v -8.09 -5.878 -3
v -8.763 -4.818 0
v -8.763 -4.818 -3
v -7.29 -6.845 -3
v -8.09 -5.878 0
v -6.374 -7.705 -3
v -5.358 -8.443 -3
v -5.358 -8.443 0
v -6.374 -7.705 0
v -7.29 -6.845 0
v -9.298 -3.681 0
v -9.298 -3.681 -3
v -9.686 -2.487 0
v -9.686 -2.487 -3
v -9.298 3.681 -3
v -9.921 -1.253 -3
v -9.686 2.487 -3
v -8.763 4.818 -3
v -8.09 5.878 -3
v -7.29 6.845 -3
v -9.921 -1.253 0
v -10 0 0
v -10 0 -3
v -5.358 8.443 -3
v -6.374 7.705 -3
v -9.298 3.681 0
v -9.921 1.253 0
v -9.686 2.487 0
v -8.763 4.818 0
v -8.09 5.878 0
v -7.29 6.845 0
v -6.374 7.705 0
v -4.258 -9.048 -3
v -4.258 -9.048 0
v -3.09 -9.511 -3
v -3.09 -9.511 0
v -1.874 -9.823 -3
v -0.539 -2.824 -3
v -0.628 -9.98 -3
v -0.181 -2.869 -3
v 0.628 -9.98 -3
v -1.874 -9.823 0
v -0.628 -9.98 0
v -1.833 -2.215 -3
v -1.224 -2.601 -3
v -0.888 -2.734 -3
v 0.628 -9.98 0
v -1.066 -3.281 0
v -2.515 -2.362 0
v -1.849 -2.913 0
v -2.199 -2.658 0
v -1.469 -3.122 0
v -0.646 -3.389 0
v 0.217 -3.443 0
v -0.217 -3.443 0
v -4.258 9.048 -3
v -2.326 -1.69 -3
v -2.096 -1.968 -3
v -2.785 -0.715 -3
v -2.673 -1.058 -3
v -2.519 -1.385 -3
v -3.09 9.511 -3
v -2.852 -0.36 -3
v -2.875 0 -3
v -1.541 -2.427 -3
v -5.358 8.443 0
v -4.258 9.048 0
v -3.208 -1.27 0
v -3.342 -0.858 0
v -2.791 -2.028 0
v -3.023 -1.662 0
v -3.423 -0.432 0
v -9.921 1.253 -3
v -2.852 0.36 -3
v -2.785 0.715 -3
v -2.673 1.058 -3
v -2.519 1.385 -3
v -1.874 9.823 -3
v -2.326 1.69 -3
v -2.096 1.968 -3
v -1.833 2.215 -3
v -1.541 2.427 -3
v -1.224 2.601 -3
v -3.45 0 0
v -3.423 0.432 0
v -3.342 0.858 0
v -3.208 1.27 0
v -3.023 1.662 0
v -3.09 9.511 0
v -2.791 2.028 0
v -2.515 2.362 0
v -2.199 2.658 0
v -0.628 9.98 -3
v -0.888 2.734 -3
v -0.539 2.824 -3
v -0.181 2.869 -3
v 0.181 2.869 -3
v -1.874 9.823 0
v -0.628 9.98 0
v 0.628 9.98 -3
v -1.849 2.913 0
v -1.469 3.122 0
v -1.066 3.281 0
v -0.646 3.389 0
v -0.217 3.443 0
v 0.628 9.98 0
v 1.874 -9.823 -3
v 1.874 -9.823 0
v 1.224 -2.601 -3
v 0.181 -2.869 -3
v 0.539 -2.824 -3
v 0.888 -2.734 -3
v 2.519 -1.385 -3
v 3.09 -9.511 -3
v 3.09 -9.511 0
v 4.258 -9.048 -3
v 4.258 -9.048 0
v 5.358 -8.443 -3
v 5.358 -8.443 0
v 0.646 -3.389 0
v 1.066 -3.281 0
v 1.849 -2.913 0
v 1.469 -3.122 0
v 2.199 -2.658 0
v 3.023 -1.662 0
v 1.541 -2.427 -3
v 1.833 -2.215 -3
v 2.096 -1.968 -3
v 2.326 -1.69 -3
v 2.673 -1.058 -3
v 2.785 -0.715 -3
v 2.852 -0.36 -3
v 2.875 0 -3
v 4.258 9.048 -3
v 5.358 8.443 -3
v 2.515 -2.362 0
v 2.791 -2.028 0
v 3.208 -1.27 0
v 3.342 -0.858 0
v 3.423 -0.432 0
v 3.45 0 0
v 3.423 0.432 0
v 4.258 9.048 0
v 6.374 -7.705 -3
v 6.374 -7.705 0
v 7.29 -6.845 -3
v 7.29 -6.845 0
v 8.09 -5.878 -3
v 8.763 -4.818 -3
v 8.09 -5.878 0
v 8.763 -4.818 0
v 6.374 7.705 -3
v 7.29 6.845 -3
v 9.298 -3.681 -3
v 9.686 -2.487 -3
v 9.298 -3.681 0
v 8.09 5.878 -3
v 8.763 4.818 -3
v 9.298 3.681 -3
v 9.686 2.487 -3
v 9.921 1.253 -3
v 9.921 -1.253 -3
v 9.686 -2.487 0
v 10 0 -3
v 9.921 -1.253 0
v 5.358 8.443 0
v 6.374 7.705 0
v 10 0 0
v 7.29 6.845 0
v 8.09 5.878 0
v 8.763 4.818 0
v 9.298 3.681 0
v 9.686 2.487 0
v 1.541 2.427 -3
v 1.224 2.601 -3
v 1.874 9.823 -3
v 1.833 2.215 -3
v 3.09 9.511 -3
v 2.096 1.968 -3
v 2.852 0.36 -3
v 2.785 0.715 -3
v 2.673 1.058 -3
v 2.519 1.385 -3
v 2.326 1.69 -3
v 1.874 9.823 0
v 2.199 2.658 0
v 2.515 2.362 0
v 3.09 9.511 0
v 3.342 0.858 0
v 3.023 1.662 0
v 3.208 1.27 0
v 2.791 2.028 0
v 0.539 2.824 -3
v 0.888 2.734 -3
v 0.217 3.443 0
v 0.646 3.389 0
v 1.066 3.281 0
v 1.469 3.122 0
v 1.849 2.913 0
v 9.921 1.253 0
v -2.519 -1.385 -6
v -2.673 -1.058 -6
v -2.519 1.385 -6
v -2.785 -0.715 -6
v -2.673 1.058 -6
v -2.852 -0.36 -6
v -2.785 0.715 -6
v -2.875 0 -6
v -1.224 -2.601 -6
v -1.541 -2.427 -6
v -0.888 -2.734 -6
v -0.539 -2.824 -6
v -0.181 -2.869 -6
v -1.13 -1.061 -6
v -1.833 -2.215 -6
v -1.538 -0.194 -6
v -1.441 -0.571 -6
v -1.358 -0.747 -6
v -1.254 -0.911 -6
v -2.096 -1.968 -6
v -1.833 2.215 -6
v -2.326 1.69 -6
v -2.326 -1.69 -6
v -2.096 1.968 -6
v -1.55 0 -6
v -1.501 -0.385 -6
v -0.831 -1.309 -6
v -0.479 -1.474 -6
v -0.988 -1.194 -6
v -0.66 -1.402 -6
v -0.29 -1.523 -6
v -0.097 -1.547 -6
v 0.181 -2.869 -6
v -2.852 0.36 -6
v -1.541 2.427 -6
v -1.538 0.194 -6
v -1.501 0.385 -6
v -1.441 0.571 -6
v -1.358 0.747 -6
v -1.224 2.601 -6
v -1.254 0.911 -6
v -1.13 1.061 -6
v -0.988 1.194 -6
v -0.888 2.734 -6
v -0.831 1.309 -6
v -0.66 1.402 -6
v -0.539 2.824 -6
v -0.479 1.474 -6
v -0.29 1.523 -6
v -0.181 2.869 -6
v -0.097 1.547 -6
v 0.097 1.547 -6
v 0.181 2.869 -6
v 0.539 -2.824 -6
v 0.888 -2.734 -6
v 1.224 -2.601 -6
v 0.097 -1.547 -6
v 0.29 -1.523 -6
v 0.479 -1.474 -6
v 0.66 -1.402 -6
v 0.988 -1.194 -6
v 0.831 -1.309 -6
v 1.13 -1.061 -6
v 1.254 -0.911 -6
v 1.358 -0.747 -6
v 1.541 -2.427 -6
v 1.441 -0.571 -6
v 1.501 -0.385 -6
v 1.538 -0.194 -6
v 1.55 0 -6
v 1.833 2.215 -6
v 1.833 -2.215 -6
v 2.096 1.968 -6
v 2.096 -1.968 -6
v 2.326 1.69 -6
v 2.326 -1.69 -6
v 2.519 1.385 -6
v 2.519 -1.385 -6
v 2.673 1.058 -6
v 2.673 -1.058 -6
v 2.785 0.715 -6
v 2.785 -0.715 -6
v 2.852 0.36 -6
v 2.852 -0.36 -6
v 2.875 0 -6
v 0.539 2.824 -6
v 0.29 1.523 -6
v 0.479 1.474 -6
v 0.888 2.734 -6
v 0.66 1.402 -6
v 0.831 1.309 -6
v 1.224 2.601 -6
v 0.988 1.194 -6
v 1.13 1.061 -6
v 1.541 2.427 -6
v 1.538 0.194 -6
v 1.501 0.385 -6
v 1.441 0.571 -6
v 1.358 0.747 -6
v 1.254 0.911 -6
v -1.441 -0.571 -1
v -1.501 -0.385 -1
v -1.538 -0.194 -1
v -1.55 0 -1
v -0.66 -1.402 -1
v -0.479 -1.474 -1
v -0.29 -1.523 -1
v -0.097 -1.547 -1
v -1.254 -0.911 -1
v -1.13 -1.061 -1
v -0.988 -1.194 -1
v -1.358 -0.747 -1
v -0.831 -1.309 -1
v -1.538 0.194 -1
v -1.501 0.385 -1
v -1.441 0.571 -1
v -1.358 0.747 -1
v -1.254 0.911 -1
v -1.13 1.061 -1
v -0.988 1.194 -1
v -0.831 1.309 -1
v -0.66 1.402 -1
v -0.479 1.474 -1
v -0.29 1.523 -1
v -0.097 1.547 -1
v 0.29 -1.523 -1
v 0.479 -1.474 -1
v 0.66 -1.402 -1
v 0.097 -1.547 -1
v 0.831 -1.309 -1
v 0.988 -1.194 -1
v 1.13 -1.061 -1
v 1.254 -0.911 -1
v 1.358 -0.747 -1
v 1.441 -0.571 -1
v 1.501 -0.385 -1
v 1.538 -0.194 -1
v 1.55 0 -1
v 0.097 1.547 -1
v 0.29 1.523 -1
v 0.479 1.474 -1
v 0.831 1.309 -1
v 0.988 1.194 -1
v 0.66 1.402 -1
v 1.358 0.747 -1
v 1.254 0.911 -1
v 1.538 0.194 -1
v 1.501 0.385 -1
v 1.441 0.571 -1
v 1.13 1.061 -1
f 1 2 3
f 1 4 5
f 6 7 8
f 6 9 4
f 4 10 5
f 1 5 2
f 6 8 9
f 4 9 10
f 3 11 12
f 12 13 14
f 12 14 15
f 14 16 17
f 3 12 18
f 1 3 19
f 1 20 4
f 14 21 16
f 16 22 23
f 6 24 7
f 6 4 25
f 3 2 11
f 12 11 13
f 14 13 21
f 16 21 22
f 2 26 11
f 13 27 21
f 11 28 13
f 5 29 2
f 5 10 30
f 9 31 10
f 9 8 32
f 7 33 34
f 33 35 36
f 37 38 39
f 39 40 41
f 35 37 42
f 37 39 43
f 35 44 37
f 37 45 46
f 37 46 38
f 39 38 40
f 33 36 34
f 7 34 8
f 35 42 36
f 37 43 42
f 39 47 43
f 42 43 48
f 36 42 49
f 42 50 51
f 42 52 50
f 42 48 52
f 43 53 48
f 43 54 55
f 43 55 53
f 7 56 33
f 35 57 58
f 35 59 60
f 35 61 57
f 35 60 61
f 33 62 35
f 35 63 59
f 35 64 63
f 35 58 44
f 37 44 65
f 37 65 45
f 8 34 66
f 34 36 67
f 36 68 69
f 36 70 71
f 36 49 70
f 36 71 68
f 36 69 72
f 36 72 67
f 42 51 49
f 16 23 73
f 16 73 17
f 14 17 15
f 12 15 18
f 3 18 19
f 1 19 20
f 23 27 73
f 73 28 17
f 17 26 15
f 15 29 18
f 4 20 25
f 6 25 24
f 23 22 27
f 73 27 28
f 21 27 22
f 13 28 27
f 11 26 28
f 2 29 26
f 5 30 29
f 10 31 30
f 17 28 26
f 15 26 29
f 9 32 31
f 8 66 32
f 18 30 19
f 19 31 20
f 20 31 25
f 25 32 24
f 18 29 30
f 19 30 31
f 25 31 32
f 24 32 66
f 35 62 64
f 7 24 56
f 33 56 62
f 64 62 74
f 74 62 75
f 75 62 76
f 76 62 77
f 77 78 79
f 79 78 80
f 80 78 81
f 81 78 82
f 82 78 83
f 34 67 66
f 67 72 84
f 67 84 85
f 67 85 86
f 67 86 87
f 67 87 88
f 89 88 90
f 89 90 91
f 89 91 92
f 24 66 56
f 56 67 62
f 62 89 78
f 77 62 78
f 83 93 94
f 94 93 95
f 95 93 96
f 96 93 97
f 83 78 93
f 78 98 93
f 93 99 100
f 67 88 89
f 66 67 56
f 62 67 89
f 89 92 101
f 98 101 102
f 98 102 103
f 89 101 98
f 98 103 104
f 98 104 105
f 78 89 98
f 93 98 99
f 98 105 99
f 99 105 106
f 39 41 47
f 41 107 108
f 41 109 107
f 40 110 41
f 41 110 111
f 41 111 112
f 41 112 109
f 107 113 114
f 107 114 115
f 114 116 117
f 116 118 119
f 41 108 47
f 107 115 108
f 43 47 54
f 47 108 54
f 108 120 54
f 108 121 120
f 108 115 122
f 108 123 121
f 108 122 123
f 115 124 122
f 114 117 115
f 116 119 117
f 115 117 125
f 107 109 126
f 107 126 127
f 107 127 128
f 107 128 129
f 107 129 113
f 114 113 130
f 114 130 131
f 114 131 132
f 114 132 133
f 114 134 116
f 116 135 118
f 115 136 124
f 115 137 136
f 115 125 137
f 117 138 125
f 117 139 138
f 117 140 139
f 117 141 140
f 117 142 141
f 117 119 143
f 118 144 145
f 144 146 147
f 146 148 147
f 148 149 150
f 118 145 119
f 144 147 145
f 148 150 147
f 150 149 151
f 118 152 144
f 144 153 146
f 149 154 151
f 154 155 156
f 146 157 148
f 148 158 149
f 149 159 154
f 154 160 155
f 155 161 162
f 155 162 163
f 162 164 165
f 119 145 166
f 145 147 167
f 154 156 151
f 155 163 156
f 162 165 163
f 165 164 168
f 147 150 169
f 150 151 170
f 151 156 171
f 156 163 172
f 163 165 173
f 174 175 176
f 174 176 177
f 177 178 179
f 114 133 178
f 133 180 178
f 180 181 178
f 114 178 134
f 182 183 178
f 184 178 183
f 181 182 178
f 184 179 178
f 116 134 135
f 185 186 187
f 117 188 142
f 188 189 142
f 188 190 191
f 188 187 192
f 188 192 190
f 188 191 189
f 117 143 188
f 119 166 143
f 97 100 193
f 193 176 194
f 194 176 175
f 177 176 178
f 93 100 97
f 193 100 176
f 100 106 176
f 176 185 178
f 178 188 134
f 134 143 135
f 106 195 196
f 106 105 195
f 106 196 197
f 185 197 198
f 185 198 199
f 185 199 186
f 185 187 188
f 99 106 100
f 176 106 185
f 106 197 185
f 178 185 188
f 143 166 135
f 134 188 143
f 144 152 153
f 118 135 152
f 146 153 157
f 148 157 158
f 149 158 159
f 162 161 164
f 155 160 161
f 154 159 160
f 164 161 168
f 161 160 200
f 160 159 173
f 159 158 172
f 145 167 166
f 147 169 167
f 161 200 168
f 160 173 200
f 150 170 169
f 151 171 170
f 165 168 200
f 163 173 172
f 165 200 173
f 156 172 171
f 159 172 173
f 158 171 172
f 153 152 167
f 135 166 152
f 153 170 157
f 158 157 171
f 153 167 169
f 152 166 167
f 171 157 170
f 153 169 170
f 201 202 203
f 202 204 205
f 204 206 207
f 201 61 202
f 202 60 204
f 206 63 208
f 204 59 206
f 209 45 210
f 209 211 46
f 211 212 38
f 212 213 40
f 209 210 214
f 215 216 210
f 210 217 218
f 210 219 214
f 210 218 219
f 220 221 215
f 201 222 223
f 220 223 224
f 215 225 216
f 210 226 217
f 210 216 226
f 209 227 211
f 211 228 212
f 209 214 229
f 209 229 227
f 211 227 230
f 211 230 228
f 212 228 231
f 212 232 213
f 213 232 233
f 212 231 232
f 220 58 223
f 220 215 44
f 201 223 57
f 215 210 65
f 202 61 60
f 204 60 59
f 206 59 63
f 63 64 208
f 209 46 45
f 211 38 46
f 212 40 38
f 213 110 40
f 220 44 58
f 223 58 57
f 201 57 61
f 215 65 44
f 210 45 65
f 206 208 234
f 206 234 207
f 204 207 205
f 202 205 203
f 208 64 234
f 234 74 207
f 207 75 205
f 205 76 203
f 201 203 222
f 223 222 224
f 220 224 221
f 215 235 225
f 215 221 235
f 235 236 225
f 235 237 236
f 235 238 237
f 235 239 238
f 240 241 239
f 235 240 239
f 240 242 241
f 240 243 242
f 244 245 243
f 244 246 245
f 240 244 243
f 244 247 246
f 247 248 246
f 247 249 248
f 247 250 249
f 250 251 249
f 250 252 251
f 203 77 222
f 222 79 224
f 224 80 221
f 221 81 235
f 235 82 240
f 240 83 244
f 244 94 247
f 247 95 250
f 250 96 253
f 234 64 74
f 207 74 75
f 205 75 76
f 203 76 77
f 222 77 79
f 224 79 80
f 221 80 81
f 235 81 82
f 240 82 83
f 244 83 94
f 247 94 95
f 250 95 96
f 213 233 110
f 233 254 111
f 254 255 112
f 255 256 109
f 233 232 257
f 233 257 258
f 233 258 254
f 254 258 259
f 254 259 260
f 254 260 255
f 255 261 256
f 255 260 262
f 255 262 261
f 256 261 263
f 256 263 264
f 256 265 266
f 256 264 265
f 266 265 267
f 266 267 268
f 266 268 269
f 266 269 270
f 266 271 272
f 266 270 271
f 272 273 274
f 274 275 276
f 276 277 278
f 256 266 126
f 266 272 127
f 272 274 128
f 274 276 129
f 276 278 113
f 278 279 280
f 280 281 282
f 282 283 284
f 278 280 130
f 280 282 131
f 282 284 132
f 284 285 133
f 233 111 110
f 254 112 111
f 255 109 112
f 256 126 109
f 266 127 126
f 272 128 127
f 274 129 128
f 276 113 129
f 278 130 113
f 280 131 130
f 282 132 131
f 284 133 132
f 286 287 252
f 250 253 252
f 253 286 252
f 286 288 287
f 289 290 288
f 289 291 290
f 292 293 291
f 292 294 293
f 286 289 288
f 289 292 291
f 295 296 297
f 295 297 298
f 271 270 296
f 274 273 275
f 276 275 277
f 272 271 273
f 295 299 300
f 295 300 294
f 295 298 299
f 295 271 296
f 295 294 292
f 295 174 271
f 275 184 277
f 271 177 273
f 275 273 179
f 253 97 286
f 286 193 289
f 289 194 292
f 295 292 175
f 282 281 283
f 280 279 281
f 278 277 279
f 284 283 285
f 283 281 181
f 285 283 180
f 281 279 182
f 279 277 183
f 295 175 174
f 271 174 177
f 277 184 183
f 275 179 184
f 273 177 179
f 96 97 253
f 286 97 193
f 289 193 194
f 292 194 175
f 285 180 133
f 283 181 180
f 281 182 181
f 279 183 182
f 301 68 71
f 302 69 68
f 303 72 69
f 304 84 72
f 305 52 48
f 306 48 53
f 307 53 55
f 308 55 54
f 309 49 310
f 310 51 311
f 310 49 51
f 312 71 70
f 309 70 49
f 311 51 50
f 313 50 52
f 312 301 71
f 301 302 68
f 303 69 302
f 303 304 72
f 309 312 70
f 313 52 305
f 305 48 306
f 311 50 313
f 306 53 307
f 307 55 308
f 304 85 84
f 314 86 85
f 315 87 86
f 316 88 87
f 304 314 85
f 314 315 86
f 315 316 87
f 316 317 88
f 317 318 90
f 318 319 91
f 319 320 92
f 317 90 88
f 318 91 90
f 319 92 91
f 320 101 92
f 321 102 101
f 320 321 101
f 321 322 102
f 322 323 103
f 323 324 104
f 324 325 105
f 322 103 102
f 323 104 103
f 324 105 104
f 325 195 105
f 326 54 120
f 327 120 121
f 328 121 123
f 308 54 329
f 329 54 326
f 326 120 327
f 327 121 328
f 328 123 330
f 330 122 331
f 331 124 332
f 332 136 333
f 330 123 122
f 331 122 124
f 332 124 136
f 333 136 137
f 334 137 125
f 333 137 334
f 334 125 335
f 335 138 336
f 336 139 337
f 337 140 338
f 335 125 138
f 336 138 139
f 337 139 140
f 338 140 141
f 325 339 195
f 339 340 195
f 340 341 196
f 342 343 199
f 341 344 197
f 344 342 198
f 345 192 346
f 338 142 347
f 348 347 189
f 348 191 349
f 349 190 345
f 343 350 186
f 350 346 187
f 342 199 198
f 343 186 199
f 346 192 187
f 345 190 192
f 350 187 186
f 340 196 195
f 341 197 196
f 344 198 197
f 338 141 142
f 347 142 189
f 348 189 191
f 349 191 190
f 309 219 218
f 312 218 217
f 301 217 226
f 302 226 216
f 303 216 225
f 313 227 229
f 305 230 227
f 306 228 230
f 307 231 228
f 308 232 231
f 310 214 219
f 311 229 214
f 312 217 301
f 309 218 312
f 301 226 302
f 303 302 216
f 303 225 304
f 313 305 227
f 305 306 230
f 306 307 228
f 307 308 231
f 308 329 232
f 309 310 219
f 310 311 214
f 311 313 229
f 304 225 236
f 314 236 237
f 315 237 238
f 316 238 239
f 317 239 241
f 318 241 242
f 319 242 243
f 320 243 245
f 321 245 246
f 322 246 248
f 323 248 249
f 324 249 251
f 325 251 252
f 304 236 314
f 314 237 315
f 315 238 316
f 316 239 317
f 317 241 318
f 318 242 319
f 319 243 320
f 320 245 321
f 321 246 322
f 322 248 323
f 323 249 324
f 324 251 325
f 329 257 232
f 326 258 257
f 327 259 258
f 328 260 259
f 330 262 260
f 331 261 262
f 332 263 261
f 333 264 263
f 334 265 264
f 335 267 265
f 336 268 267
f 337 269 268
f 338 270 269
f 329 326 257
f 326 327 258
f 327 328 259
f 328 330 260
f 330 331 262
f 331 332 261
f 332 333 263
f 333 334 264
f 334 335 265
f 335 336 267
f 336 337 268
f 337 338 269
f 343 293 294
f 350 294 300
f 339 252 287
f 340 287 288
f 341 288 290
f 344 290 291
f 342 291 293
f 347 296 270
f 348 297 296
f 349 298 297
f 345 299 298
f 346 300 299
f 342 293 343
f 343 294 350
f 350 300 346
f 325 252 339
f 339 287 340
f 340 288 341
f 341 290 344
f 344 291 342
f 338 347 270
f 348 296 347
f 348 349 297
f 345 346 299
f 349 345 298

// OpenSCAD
$fn = 50;

difference() {
	union() {
		translate(v = [0, 0, -3.0]) {
			cylinder(h = 3, r = 10.0);
		}
		#translate(v = [0, 0, -6.0]) {
			cylinder(h = 6, r = 2.875);
		}
	}
	union() {
		translate(v = [0, 0, 0]) {
			rotate(a = [0, 0, 0]) {
				difference() {
					union() {
						translate(v = [0, 0, -6.0]) {
							cylinder(h = 6, r = 1.25);
						}
						translate(v = [0, 0, -1.0]) {
							cylinder(h = 1.0, r1 = 1.55, r2 = 3.45);
						}
						translate(v = [0, 0, -6.0]) {
							cylinder(h = 6, r = 1.55);
						}
						translate(v = [0, 0, -6.0]) {
							cylinder(h = 6, r = 1.25);
						}
					}
					union();
				}
			}
		}
	}
}
